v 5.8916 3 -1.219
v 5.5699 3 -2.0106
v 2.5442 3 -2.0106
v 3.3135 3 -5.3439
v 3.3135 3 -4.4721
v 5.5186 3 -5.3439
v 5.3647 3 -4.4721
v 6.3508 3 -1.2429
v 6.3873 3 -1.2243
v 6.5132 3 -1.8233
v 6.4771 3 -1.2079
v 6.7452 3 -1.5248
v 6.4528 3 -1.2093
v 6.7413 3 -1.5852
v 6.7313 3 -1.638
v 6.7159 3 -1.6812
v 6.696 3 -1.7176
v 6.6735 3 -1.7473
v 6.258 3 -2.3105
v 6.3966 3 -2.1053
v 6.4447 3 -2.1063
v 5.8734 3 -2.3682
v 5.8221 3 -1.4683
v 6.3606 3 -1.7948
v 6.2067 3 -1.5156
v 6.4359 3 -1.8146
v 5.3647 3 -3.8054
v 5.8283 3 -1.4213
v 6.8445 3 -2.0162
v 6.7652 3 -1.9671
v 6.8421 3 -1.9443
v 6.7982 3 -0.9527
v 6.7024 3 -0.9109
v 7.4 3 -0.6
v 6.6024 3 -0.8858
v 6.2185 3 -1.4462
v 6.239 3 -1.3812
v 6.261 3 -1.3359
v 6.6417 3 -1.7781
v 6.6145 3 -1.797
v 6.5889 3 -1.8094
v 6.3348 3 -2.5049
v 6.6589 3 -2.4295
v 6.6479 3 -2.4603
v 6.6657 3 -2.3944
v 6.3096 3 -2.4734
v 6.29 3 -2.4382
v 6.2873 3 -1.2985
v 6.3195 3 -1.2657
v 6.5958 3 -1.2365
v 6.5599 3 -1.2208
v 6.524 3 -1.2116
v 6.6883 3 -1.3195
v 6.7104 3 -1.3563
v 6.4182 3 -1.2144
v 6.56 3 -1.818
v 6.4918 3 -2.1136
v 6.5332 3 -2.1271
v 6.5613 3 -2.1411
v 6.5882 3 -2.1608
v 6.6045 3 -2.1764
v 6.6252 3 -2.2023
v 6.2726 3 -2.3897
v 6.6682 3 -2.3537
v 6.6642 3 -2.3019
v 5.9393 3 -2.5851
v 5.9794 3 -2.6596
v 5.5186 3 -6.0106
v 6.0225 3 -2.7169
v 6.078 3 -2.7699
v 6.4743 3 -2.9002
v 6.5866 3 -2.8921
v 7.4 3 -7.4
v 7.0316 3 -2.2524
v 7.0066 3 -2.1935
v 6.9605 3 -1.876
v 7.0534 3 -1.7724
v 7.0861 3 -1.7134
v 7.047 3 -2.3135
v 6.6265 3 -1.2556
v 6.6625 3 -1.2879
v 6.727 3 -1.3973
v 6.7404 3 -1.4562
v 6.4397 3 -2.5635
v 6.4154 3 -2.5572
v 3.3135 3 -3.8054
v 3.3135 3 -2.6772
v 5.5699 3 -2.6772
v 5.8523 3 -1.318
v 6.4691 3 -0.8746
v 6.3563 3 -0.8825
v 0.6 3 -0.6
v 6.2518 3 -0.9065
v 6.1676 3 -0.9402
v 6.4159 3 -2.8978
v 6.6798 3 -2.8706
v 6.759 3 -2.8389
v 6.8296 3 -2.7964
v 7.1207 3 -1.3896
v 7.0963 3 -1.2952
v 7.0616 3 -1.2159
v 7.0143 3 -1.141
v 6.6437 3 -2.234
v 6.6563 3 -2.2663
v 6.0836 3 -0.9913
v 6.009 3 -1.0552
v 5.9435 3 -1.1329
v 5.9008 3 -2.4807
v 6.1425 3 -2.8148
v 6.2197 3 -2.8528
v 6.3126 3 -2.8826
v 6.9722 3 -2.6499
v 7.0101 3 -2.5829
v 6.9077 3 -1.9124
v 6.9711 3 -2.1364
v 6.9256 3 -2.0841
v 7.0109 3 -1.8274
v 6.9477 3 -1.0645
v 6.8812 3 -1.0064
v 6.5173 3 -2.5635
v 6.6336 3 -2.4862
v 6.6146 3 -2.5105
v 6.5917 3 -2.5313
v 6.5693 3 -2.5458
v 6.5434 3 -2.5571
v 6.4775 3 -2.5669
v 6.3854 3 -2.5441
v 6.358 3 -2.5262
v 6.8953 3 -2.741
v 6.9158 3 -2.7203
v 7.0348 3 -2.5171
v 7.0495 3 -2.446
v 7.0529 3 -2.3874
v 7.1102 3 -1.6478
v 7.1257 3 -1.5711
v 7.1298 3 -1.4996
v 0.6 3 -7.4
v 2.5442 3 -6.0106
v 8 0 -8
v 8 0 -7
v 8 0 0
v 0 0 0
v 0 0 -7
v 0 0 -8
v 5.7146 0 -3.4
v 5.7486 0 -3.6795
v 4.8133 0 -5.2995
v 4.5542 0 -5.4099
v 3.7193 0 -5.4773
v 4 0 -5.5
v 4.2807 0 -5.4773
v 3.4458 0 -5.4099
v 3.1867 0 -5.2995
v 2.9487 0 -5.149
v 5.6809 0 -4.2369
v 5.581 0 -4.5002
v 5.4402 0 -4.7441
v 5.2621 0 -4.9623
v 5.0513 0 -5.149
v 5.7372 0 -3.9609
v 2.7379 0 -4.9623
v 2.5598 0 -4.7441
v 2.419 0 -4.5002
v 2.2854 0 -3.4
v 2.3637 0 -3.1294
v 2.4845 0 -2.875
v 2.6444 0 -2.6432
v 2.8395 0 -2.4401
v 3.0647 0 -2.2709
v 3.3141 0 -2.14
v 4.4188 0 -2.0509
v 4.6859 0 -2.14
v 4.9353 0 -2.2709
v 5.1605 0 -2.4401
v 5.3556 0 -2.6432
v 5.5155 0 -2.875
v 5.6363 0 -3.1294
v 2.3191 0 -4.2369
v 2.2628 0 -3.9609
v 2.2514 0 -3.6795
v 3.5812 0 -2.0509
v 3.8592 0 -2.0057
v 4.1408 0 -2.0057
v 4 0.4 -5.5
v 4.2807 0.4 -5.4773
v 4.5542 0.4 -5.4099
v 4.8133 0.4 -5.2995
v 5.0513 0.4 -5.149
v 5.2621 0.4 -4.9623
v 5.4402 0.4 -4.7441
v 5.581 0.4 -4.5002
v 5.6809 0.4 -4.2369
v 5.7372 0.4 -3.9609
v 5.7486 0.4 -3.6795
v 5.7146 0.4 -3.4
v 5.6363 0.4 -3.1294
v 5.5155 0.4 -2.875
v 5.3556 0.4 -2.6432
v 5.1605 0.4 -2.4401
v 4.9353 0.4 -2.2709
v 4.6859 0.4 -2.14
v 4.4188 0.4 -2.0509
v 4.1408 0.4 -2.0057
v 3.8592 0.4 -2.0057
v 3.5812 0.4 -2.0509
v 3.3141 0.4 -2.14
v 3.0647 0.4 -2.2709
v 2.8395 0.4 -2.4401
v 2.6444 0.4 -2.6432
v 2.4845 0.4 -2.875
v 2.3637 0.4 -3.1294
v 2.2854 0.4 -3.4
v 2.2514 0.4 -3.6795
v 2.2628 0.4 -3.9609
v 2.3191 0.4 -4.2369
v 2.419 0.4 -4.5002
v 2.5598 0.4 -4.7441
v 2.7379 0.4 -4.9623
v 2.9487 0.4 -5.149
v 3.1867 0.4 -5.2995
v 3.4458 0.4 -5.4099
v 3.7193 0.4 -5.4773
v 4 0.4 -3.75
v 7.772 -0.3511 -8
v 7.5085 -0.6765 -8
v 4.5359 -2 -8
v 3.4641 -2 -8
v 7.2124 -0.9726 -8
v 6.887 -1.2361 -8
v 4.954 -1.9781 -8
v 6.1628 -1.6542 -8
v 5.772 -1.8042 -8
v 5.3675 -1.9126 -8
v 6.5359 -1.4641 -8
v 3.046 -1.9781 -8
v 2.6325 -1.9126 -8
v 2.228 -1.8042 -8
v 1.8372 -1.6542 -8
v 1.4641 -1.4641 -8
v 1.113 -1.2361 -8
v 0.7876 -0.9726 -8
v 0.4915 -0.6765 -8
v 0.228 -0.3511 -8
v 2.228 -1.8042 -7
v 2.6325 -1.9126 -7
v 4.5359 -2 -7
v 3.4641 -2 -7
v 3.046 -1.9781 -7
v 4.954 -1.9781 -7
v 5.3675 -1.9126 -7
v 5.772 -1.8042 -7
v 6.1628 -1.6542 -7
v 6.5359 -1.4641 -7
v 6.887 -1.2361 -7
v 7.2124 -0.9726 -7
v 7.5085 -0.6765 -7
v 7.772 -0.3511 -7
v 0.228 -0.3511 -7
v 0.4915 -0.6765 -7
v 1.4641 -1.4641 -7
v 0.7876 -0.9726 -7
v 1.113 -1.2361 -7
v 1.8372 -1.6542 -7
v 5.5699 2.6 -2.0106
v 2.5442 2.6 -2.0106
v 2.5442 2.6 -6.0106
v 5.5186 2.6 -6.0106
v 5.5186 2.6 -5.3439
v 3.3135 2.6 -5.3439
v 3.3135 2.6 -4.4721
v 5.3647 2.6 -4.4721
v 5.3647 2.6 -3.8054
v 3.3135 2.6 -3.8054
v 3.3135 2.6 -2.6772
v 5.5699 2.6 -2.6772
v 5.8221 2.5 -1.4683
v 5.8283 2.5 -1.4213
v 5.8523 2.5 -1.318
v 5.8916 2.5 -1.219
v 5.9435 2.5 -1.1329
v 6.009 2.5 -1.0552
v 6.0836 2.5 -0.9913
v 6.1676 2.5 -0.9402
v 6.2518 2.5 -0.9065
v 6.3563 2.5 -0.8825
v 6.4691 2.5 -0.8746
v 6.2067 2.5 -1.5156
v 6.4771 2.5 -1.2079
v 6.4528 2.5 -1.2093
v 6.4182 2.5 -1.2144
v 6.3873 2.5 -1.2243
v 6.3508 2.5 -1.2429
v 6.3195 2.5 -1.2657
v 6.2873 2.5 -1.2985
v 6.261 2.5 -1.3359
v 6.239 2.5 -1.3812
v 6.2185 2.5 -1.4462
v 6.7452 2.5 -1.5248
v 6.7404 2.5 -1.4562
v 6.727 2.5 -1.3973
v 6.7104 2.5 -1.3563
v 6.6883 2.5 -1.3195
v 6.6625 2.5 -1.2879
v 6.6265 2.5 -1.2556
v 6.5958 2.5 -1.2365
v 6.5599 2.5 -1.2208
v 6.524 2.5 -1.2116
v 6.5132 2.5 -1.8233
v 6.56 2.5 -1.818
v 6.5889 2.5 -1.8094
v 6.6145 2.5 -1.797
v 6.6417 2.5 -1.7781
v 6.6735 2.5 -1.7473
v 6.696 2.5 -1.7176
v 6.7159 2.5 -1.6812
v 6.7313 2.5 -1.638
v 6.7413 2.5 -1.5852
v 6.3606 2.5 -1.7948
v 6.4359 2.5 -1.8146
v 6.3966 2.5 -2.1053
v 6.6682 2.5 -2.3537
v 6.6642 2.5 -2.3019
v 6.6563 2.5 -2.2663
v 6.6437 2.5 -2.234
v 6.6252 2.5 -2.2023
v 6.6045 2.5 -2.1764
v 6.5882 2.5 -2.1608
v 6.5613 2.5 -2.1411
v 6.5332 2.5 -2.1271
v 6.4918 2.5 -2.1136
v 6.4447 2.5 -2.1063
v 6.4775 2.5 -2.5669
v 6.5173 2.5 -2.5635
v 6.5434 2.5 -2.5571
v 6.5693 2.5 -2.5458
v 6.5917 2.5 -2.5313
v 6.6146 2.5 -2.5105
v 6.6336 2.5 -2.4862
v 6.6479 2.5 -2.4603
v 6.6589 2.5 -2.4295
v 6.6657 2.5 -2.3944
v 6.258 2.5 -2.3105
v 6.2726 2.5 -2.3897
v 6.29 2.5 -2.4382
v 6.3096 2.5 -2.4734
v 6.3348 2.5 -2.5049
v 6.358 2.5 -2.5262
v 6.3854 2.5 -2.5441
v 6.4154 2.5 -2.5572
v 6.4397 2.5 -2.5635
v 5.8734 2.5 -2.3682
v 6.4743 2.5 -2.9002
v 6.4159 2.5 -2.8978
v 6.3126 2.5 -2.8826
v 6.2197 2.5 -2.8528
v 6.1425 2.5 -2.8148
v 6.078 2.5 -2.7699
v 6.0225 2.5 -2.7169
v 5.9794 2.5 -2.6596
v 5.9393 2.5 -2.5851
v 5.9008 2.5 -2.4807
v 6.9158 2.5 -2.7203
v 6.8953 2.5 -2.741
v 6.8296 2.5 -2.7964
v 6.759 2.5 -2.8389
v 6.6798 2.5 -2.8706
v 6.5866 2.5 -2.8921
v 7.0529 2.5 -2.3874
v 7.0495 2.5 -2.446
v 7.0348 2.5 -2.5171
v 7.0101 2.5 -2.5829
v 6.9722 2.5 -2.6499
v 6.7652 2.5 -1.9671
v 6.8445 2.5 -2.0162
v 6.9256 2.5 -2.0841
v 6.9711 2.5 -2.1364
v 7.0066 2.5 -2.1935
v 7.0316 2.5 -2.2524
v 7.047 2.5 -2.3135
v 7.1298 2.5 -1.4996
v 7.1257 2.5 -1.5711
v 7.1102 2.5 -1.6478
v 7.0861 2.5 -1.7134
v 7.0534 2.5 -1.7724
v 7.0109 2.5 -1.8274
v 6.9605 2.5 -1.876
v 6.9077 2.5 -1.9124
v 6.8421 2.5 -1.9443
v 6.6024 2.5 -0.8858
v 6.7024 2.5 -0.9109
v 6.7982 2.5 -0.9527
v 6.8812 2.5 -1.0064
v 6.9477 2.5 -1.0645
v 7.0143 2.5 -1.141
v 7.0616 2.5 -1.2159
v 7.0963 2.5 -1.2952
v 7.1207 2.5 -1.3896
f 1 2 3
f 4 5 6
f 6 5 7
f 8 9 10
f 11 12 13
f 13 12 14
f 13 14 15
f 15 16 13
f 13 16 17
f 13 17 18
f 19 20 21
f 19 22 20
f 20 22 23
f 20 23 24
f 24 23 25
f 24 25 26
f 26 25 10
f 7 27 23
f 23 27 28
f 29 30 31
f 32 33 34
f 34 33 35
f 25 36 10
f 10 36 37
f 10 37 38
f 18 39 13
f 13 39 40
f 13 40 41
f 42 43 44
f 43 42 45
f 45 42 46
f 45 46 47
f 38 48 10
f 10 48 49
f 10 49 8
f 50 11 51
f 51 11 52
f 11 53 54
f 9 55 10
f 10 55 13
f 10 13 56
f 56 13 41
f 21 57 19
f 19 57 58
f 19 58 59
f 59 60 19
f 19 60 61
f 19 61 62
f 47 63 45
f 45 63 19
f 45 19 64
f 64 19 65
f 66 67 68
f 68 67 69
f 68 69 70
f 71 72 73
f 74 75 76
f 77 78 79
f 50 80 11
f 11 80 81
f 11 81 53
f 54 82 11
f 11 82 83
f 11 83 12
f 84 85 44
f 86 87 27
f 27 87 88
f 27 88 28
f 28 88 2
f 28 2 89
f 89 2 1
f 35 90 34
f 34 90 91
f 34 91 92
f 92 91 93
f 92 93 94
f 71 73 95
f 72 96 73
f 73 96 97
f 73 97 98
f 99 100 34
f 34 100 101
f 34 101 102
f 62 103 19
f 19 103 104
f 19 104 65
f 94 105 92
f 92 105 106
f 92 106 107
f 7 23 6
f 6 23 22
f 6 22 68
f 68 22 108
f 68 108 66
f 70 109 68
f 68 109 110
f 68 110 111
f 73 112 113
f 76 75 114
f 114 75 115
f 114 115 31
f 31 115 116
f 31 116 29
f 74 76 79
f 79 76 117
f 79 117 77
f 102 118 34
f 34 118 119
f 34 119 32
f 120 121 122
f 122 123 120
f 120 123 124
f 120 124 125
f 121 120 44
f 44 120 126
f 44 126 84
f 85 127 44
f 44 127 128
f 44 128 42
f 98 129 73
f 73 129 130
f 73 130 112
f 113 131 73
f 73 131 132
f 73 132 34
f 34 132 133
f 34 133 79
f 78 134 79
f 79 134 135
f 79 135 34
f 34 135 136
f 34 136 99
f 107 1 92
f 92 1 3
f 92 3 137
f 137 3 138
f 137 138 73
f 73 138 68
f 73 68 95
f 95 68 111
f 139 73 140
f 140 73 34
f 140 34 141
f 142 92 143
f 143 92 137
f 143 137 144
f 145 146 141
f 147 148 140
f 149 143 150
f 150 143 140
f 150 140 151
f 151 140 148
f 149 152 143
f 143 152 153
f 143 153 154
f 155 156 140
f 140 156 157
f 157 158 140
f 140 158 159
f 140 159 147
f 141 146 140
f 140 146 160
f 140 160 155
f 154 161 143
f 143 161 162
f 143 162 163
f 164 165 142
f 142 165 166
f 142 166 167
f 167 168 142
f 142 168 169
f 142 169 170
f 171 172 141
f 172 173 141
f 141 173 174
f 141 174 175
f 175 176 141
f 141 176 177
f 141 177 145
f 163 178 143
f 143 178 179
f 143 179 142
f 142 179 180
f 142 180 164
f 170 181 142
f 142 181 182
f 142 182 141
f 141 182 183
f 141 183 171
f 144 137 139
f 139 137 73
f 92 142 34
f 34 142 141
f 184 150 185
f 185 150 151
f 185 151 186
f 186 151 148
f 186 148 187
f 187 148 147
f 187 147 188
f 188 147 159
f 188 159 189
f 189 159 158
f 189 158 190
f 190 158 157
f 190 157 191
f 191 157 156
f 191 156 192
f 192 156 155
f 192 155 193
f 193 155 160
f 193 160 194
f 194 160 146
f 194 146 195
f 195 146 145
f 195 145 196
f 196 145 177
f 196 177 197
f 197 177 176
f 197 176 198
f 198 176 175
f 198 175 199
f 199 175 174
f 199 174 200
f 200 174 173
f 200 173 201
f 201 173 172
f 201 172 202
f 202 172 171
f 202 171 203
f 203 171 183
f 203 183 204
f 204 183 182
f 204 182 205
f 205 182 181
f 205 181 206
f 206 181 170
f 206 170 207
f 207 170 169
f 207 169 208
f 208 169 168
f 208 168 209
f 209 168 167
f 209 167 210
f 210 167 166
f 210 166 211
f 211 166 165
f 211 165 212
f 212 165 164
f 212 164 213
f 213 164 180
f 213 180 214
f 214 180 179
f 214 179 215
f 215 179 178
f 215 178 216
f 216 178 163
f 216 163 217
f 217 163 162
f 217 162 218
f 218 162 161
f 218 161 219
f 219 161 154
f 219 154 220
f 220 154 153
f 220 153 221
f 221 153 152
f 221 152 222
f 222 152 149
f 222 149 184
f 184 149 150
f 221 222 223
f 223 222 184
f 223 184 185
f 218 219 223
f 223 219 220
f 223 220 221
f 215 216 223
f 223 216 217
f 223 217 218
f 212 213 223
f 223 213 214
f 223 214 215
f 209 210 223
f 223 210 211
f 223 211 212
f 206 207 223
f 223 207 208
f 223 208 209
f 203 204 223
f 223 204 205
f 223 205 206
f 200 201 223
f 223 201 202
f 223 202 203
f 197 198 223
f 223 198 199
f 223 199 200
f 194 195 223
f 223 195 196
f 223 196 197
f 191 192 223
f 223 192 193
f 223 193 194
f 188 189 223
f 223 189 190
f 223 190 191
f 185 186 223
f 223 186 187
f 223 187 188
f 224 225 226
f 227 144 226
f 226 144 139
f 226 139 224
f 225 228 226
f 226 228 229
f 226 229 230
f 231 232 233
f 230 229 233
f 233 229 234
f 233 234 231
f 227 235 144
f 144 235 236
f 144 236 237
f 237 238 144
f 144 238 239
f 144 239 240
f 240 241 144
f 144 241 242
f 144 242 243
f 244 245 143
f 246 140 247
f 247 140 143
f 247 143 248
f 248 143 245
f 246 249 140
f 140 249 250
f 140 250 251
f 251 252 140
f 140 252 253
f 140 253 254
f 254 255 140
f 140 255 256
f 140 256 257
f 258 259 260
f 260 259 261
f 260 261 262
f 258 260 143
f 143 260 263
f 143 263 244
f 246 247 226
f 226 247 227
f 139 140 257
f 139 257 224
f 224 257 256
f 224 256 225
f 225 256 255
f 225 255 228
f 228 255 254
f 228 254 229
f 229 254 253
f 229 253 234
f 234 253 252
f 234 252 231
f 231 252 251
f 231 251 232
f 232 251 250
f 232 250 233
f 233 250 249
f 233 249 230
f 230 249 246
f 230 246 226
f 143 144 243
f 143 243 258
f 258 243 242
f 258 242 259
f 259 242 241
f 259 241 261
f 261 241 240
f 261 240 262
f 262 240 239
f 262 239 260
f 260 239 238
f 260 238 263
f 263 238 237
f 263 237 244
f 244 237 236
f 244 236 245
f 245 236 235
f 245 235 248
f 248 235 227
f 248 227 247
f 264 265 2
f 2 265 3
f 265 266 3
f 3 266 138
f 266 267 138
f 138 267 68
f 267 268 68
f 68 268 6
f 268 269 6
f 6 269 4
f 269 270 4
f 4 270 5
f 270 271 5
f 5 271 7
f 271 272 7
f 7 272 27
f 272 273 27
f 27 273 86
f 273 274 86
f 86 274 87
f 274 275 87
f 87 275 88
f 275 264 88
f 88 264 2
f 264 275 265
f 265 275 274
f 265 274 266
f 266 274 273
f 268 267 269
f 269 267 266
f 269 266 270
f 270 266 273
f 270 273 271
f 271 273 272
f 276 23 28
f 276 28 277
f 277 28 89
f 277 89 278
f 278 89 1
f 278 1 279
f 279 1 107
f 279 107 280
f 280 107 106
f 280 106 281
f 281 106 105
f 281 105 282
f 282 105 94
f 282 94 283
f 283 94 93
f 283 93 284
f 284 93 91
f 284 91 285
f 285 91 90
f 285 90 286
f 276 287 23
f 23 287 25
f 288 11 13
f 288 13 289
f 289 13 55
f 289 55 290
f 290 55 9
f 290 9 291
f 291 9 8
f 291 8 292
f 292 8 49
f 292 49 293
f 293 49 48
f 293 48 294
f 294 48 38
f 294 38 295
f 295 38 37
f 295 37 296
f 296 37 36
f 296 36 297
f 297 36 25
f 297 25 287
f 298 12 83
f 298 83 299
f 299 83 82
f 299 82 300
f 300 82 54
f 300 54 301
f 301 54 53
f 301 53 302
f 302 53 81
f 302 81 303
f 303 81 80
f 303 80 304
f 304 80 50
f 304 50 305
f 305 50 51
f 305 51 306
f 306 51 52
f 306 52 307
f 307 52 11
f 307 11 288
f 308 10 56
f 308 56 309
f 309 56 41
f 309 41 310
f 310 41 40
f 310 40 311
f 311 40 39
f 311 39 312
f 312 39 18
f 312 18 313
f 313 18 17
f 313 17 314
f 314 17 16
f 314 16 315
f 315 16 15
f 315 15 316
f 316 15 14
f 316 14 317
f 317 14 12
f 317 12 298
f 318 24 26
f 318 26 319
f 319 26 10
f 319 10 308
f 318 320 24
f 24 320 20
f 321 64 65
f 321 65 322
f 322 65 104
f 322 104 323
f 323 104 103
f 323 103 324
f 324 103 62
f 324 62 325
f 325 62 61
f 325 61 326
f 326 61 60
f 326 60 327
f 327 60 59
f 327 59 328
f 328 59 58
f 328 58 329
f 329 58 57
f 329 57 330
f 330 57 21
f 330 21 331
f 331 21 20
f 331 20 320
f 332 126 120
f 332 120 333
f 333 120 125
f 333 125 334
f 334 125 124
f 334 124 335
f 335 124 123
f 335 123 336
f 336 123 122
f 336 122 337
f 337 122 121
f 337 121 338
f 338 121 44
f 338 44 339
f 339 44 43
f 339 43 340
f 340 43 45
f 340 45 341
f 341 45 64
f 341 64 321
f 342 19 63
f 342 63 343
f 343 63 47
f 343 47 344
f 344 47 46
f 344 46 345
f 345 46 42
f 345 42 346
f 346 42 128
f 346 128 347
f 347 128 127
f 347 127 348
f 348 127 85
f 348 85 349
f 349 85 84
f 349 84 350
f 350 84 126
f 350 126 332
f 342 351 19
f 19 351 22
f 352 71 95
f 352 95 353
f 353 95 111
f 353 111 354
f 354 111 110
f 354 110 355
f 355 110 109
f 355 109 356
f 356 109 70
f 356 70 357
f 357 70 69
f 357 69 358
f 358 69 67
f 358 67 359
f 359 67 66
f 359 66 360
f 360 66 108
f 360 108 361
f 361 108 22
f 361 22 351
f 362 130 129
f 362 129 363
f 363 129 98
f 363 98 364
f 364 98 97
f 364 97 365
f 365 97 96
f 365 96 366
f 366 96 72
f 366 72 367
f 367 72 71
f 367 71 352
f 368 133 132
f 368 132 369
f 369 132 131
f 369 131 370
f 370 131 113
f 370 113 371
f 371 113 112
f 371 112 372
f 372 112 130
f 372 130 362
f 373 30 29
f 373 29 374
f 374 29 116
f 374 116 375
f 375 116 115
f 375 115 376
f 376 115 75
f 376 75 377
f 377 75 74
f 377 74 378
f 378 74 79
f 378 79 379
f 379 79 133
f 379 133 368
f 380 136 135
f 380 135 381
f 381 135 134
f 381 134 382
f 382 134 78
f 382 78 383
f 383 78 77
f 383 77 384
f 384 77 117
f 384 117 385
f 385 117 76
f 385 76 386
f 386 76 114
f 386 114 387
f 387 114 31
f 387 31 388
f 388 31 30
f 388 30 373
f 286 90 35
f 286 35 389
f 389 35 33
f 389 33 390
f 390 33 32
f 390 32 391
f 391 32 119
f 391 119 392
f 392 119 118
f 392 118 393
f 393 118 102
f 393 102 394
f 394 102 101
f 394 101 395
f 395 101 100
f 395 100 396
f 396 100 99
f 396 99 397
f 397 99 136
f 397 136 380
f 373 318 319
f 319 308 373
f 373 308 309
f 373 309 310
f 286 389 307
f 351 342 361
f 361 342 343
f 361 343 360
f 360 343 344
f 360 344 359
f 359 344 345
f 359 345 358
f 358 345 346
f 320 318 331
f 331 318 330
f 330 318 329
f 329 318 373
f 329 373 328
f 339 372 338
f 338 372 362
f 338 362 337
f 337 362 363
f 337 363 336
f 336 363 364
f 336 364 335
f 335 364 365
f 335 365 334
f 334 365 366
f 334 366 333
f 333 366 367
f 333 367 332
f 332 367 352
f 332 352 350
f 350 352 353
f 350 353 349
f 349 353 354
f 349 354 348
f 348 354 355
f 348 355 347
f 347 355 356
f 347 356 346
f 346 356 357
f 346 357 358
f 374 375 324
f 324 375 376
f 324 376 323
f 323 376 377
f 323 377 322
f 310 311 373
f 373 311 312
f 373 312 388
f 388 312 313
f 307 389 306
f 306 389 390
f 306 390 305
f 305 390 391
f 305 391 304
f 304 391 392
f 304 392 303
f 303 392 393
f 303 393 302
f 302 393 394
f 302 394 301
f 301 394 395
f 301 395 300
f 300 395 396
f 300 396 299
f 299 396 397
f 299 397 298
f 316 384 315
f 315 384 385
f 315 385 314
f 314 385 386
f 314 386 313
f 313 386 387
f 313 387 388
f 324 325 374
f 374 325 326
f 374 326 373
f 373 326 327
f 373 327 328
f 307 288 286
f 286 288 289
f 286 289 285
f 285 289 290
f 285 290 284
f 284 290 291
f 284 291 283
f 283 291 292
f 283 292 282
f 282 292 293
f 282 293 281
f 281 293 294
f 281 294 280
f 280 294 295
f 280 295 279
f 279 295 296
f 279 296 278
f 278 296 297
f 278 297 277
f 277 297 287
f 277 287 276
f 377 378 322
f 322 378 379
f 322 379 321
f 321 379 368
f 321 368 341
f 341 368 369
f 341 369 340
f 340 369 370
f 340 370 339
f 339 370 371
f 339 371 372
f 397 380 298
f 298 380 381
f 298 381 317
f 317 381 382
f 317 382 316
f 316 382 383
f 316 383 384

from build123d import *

# Parameters (mm, degrees)
SKETCH1_W               = 8
SKETCH1_H               = 8
BOSS_EXTRUDE1_DEPTH     = 3
CUT_EXTRUDE1_DEPTH      = 12.704699911
CUT_EXTRUDE1_DEPTH_BACK = 12.704699911
CUT_EXTRUDE2_DEPTH      = 11
SKETCH4_R               = 1.75
CUT_EXTRUDE3_DEPTH      = 0.4
SKETCH5_W               = 8
SKETCH5_H               = 1
BOSS_EXTRUDE2_DEPTH     = 2
FILLET1_R               = 4
CUT_EXTRUDE4_DEPTH      = 0.4
CUT_EXTRUDE5_DEPTH      = 0.5


with BuildPart() as part:
    # Sketch1 → Boss-Extrude1 (new body)
    with BuildSketch(Plane(origin=(0, 0, 0), x_dir=(1, 0, 0), z_dir=(0, 1, 0))):
        with Locations((4, 4)):
            Rectangle(SKETCH1_W, SKETCH1_H)
    extrude(amount=BOSS_EXTRUDE1_DEPTH)

    # Sketch2 → Cut-Extrude1 (cut, two sides: drawn at the far end of the back side and taken through both)
    with BuildSketch(Plane.XY.offset(-CUT_EXTRUDE1_DEPTH_BACK)):
        Polygon((0, 0), (0.6, 3), (0, 3), align=None)
        Polygon((8, 0), (7.4, 3), (8, 3), align=None)
    extrude(amount=CUT_EXTRUDE1_DEPTH + CUT_EXTRUDE1_DEPTH_BACK, mode=Mode.SUBTRACT)

    # Sketch3 → Cut-Extrude2 (cut)
    with BuildSketch(Plane(origin=(0, 0, 0), x_dir=(0, 0, -1), z_dir=(1, 0, 0))):
        Polygon((0, 0), (0.6, 3), (0, 3), align=None)
        Polygon((8, 3), (7.4, 3), (8, 0), align=None)
    extrude(amount=CUT_EXTRUDE2_DEPTH, mode=Mode.SUBTRACT)

    # Sketch4 → Cut-Extrude3 (cut)
    with BuildSketch(Plane.XZ):
        with Locations(Location((4, -3.75, 0), (0, 0, 270))):
            Circle(SKETCH4_R)
    extrude(amount=-CUT_EXTRUDE3_DEPTH, mode=Mode.SUBTRACT)

    # Sketch5 → Boss-Extrude2 (add)
    with BuildSketch(Plane.XZ):
        with Locations((4, -7.5)):
            Rectangle(SKETCH5_W, SKETCH5_H)
    extrude(amount=BOSS_EXTRUDE2_DEPTH)

    # Fillet1
    # the kernel refuses this fillet: 4 mm, written as the material it takes off along each edge
    with BuildSketch(Plane(origin=(8, -2, -16.660254038), x_dir=(0, 1, 0), z_dir=(0, 0, 1)), Plane(origin=(0, -2, 1.660254038), x_dir=(0, 1, 0), z_dir=(0, 0, -1))) as fillet1_piece_1:
        with BuildLine():
            CenterArc((4, 3.464101615), FILLET1_R, 180, 60)
            Line((0, 3.464101615), (-0.08, 3.464101615))
            Line((-0.08, 3.464101615), (-0.08, 0))
            Line((-0.08, 0), (0, -0.08))
            ThreePointArc((0, -0.08), (1, -0.08), (1.96, -0.069282032))
            Line((1.96, -0.069282032), (2, 0))
        make_face()
    extrude(amount=18.320508076, mode=Mode.SUBTRACT)

    # Sketch6 → Cut-Extrude4 (cut)
    with BuildSketch(Plane(origin=(0, 3, 0), x_dir=(1, 0, 0), z_dir=(0, 1, 0))):
        Polygon((2.544225106, 2.010567225), (2.544225106, 6.010567225), (5.51858408, 6.010567225), (5.51858408, 5.343900558), (3.313455875, 5.343900558), (3.313455875, 4.472105686), (5.364737926, 4.472105686), (5.364737926, 3.80543902), (3.313455875, 3.80543902), (3.313455875, 2.677233891), (5.569866131, 2.677233891), (5.569866131, 2.010567225), align=None)
    extrude(amount=-CUT_EXTRUDE4_DEPTH, mode=Mode.SUBTRACT)

    # Sketch7 → Cut-Extrude5 (cut)
    with BuildSketch(Plane(origin=(0, 3, 0), x_dir=(1, 0, 0), z_dir=(0, 1, 0))):
        with BuildLine():
            Line((5.822088817, 1.468310464), (6.206704202, 1.515586105))
            add(Edge.make_bspline(
                [(6.206704202, 1.515586105), (6.210025755, 1.491936921), (6.21633053, 1.447047438), (6.235989072, 1.384914698), (6.261652315, 1.330845836), (6.295629161, 1.286544364), (6.334912115, 1.251310519), (6.37872169, 1.226169889), (6.426661607, 1.210315729), (6.460052531, 1.208713548), (6.477136894, 1.207893797)],
                knots=[0, 0, 0, 0, 1.26631894, 2.403651751, 3.447242243, 4.428907923, 5.348362865, 6.231623936, 7.095215805, 8, 8, 8, 8], degree=3))
            add(Edge.make_bspline(
                [(6.477136894, 1.207893797), (6.486366298, 1.208091994), (6.504648304, 1.20848459), (6.531523321, 1.212603697), (6.557345996, 1.219374529), (6.58186155, 1.229117251), (6.605187017, 1.241222715), (6.627629553, 1.255638676), (6.648246393, 1.273643613), (6.668375088, 1.29334292), (6.68623752, 1.315767324), (6.701972196, 1.340096861), (6.715784117, 1.366090219), (6.726489771, 1.394417604), (6.734869896, 1.424465406), (6.740860884, 1.456364057), (6.744506994, 1.489993317), (6.74494315, 1.513039367), (6.74516574, 1.524800849)],
                knots=[0, 0, 0, 0, 0.951760839, 1.885289532, 2.797832748, 3.70117291, 4.60103766, 5.506897018, 6.445598779, 7.420035506, 8.410036365, 9.396193293, 10.407074535, 11.440988179, 12.514285005, 13.622404236, 14.786601276, 16, 16, 16, 16], degree=3))
            add(Edge.make_bspline(
                [(6.74516574, 1.524800849), (6.744331981, 1.546629456), (6.742741494, 1.588269906), (6.730451294, 1.647346431), (6.709137892, 1.699277092), (6.679276772, 1.743130281), (6.643793264, 1.778406879), (6.604044422, 1.8049236), (6.559654571, 1.820157256), (6.528795478, 1.822230353), (6.513194586, 1.823278413)],
                knots=[0, 0, 0, 0, 1.241512862, 2.368321189, 3.414110003, 4.41529485, 5.36642979, 6.245396713, 7.112955941, 8, 8, 8, 8], degree=3))
            add(Edge.make_bspline(
                [(6.513194586, 1.823278413), (6.502087722, 1.822994208), (6.47854234, 1.822391724), (6.441918774, 1.81613185), (6.401980616, 1.80749294), (6.374785766, 1.799182881), (6.360550356, 1.7948329)],
                knots=[0, 0, 0, 0, 0.854525515, 1.811503923, 2.854410343, 4, 4, 4, 4], degree=3))
            Line((6.360550356, 1.7948329), (6.396608048, 2.105329695))
            add(Edge.make_bspline(
                [(6.396608048, 2.105329695), (6.407296254, 2.105146348), (6.428036665, 2.104790564), (6.458323888, 2.107301653), (6.486673662, 2.111886341), (6.513019839, 2.119324972), (6.53738695, 2.128349551), (6.559988104, 2.139688262), (6.580270378, 2.153798702), (6.604965361, 2.175098338), (6.630230561, 2.207014566), (6.6530719, 2.250778884), (6.665798637, 2.300679459), (6.667408863, 2.335629458), (6.668242663, 2.353727131)],
                knots=[0, 0, 0, 0, 0.916749589, 1.778948191, 2.604102396, 3.376994206, 4.124053722, 4.831292757, 5.54010828, 6.238660037, 7.62386988, 9.002523041, 10.447858069, 12, 12, 12, 12], degree=3))
            add(Edge.make_bspline(
                [(6.668242663, 2.353727131), (6.667680515, 2.36913782), (6.666602635, 2.398686702), (6.656933325, 2.440733393), (6.640429824, 2.477855418), (6.617345194, 2.50940841), (6.589028098, 2.535030406), (6.555929861, 2.553963194), (6.518019093, 2.565003531), (6.491366313, 2.566231188), (6.477537535, 2.566868156)],
                knots=[0, 0, 0, 0, 1.146968804, 2.199229744, 3.192297141, 4.153502289, 5.090509175, 6.0173182, 6.971286811, 8, 8, 8, 8], degree=3))
            add(Edge.make_bspline(
                [(6.477537535, 2.566868156), (6.463673911, 2.566182836), (6.436422829, 2.564835732), (6.397428508, 2.551510744), (6.361454157, 2.530893795), (6.329709376, 2.501368407), (6.302195486, 2.464646404), (6.280874208, 2.419861118), (6.265858745, 2.367714197), (6.260698213, 2.33018187), (6.257986253, 2.3104579)],
                knots=[0, 0, 0, 0, 0.889956214, 1.749345552, 2.62404616, 3.543272128, 4.520224035, 5.562553653, 6.719074424, 8, 8, 8, 8], degree=3))
            Line((6.257986253, 2.3104579), (5.873370869, 2.368150208))
            add(Edge.make_bspline(
                [(5.873370869, 2.368150208), (5.879712758, 2.397514751), (5.891852554, 2.453725064), (5.916656, 2.532479948), (5.945759151, 2.602002338), (5.979761878, 2.663071325), (6.020038823, 2.716762155), (6.067859884, 2.763365742), (6.122509575, 2.804234412), (6.183883545, 2.838478774), (6.250614825, 2.865925856), (6.321633047, 2.886240153), (6.396757082, 2.897882068), (6.448117417, 2.899417689), (6.474332407, 2.90020149)],
                knots=[0, 0, 0, 0, 1.220808349, 2.336900656, 3.3513467, 4.279992853, 5.171472476, 6.069835959, 6.985198729, 7.938095762, 8.919113729, 9.91246339, 10.934493858, 12, 12, 12, 12], degree=3))
            add(Edge.make_bspline(
                [(6.474332407, 2.90020149), (6.496795991, 2.899690329), (6.540685792, 2.898691614), (6.604687523, 2.890097866), (6.665244055, 2.876137228), (6.722439804, 2.856388937), (6.776539911, 2.831244798), (6.826641223, 2.799609265), (6.873794781, 2.763093379), (6.901724377, 2.73467508), (6.915838817, 2.720313669)],
                knots=[0, 0, 0, 0, 1.096978699, 2.143298912, 3.148181587, 4.128190255, 5.094201205, 6.055441919, 7.017302331, 8, 8, 8, 8], degree=3))
            add(Edge.make_bspline(
                [(6.915838817, 2.720313669), (6.926741328, 2.708075606), (6.948274918, 2.683904162), (6.976233385, 2.645150995), (6.999633117, 2.604882958), (7.019482141, 2.563940258), (7.034243104, 2.52137348), (7.04524752, 2.477850813), (7.051783755, 2.43298662), (7.05249893, 2.402626167), (7.052858048, 2.387380977)],
                knots=[0, 0, 0, 0, 1.065582675, 2.104636323, 3.101288825, 4.092056841, 5.059084899, 6.026073946, 7.008813224, 8, 8, 8, 8], degree=3))
            add(Edge.make_bspline(
                [(7.052858048, 2.387380977), (7.052074688, 2.365937591), (7.050530541, 2.323668734), (7.036361111, 2.262180096), (7.013586987, 2.204054017), (6.982096895, 2.149068456), (6.941041129, 2.097733658), (6.890499978, 2.050511525), (6.831958555, 2.005600039), (6.787958464, 1.980231405), (6.765197792, 1.967108541)],
                knots=[0, 0, 0, 0, 0.957571776, 1.887550067, 2.804499428, 3.740591036, 4.709432777, 5.731457079, 6.826512349, 8, 8, 8, 8], degree=3))
            add(Edge.make_bspline(
                [(6.765197792, 1.967108541), (6.778741549, 1.963844189), (6.805468134, 1.957402478), (6.844077906, 1.94426987), (6.880236126, 1.927424278), (6.914828375, 1.908914943), (6.946996208, 1.886966635), (6.977363151, 1.862646466), (7.00476785, 1.834549826), (7.03102769, 1.804865641), (7.053982146, 1.772288453), (7.074722978, 1.738388398), (7.091382436, 1.702338355), (7.105631297, 1.665065232), (7.116248441, 1.625966572), (7.124562393, 1.585334894), (7.128729622, 1.542917296), (7.129427921, 1.514124194), (7.129781125, 1.499560464)],
                knots=[0, 0, 0, 0, 1.037381978, 2.047118658, 3.030848314, 4.005687143, 4.965748246, 5.927353932, 6.897971669, 7.885165084, 8.876109723, 9.862099733, 10.840989857, 11.829385213, 12.830906716, 13.855042526, 14.915067134, 16, 16, 16, 16], degree=3))
            add(Edge.make_bspline(
                [(7.129781125, 1.499560464), (7.129332308, 1.478289376), (7.12844718, 1.43633993), (7.11872513, 1.374773186), (7.10395436, 1.3156035), (7.083598929, 1.25859183), (7.056376257, 1.204435717), (7.023823759, 1.152375398), (6.985054773, 1.102929453), (6.940845684, 1.056472589), (6.892539484, 1.013951446), (6.84063463, 0.97660242), (6.785900139, 0.944991177), (6.728022396, 0.9191431), (6.667504686, 0.899031537), (6.603826037, 0.885208987), (6.537502989, 0.875987213), (6.49212598, 0.875040406), (6.469124074, 0.874560464)],
                knots=[0, 0, 0, 0, 1.006520189, 1.984993146, 2.943645202, 3.891894145, 4.845023195, 5.808336607, 6.795092628, 7.815033679, 8.841288157, 9.838185905, 10.83832808, 11.829129029, 12.835072876, 13.85234392, 14.911338897, 16, 16, 16, 16], degree=3))
            add(Edge.make_bspline(
                [(6.469124074, 0.874560464), (6.447326457, 0.874925903), (6.404510806, 0.875643711), (6.341832261, 0.884147308), (6.281800208, 0.896657101), (6.224765045, 0.914957582), (6.170229951, 0.937498647), (6.119224255, 0.966556317), (6.070434994, 0.999582769), (6.02545616, 1.03827062), (5.983635573, 1.080436419), (5.946901196, 1.126807021), (5.914165969, 1.175902437), (5.886010541, 1.228157933), (5.862670856, 1.283709297), (5.844497682, 1.342413141), (5.830004226, 1.404089696), (5.824763645, 1.446608551), (5.822088817, 1.468310464)],
                knots=[0, 0, 0, 0, 1.077528213, 2.11651914, 3.123276654, 4.10732375, 5.075386463, 6.036572488, 7.005896639, 7.98540975, 8.966414275, 9.939311093, 10.906719916, 11.882103104, 12.870994428, 13.882228509, 14.919075059, 16, 16, 16, 16], degree=3))
        make_face()
    extrude(amount=-CUT_EXTRUDE5_DEPTH, mode=Mode.SUBTRACT)


solid = part.part
